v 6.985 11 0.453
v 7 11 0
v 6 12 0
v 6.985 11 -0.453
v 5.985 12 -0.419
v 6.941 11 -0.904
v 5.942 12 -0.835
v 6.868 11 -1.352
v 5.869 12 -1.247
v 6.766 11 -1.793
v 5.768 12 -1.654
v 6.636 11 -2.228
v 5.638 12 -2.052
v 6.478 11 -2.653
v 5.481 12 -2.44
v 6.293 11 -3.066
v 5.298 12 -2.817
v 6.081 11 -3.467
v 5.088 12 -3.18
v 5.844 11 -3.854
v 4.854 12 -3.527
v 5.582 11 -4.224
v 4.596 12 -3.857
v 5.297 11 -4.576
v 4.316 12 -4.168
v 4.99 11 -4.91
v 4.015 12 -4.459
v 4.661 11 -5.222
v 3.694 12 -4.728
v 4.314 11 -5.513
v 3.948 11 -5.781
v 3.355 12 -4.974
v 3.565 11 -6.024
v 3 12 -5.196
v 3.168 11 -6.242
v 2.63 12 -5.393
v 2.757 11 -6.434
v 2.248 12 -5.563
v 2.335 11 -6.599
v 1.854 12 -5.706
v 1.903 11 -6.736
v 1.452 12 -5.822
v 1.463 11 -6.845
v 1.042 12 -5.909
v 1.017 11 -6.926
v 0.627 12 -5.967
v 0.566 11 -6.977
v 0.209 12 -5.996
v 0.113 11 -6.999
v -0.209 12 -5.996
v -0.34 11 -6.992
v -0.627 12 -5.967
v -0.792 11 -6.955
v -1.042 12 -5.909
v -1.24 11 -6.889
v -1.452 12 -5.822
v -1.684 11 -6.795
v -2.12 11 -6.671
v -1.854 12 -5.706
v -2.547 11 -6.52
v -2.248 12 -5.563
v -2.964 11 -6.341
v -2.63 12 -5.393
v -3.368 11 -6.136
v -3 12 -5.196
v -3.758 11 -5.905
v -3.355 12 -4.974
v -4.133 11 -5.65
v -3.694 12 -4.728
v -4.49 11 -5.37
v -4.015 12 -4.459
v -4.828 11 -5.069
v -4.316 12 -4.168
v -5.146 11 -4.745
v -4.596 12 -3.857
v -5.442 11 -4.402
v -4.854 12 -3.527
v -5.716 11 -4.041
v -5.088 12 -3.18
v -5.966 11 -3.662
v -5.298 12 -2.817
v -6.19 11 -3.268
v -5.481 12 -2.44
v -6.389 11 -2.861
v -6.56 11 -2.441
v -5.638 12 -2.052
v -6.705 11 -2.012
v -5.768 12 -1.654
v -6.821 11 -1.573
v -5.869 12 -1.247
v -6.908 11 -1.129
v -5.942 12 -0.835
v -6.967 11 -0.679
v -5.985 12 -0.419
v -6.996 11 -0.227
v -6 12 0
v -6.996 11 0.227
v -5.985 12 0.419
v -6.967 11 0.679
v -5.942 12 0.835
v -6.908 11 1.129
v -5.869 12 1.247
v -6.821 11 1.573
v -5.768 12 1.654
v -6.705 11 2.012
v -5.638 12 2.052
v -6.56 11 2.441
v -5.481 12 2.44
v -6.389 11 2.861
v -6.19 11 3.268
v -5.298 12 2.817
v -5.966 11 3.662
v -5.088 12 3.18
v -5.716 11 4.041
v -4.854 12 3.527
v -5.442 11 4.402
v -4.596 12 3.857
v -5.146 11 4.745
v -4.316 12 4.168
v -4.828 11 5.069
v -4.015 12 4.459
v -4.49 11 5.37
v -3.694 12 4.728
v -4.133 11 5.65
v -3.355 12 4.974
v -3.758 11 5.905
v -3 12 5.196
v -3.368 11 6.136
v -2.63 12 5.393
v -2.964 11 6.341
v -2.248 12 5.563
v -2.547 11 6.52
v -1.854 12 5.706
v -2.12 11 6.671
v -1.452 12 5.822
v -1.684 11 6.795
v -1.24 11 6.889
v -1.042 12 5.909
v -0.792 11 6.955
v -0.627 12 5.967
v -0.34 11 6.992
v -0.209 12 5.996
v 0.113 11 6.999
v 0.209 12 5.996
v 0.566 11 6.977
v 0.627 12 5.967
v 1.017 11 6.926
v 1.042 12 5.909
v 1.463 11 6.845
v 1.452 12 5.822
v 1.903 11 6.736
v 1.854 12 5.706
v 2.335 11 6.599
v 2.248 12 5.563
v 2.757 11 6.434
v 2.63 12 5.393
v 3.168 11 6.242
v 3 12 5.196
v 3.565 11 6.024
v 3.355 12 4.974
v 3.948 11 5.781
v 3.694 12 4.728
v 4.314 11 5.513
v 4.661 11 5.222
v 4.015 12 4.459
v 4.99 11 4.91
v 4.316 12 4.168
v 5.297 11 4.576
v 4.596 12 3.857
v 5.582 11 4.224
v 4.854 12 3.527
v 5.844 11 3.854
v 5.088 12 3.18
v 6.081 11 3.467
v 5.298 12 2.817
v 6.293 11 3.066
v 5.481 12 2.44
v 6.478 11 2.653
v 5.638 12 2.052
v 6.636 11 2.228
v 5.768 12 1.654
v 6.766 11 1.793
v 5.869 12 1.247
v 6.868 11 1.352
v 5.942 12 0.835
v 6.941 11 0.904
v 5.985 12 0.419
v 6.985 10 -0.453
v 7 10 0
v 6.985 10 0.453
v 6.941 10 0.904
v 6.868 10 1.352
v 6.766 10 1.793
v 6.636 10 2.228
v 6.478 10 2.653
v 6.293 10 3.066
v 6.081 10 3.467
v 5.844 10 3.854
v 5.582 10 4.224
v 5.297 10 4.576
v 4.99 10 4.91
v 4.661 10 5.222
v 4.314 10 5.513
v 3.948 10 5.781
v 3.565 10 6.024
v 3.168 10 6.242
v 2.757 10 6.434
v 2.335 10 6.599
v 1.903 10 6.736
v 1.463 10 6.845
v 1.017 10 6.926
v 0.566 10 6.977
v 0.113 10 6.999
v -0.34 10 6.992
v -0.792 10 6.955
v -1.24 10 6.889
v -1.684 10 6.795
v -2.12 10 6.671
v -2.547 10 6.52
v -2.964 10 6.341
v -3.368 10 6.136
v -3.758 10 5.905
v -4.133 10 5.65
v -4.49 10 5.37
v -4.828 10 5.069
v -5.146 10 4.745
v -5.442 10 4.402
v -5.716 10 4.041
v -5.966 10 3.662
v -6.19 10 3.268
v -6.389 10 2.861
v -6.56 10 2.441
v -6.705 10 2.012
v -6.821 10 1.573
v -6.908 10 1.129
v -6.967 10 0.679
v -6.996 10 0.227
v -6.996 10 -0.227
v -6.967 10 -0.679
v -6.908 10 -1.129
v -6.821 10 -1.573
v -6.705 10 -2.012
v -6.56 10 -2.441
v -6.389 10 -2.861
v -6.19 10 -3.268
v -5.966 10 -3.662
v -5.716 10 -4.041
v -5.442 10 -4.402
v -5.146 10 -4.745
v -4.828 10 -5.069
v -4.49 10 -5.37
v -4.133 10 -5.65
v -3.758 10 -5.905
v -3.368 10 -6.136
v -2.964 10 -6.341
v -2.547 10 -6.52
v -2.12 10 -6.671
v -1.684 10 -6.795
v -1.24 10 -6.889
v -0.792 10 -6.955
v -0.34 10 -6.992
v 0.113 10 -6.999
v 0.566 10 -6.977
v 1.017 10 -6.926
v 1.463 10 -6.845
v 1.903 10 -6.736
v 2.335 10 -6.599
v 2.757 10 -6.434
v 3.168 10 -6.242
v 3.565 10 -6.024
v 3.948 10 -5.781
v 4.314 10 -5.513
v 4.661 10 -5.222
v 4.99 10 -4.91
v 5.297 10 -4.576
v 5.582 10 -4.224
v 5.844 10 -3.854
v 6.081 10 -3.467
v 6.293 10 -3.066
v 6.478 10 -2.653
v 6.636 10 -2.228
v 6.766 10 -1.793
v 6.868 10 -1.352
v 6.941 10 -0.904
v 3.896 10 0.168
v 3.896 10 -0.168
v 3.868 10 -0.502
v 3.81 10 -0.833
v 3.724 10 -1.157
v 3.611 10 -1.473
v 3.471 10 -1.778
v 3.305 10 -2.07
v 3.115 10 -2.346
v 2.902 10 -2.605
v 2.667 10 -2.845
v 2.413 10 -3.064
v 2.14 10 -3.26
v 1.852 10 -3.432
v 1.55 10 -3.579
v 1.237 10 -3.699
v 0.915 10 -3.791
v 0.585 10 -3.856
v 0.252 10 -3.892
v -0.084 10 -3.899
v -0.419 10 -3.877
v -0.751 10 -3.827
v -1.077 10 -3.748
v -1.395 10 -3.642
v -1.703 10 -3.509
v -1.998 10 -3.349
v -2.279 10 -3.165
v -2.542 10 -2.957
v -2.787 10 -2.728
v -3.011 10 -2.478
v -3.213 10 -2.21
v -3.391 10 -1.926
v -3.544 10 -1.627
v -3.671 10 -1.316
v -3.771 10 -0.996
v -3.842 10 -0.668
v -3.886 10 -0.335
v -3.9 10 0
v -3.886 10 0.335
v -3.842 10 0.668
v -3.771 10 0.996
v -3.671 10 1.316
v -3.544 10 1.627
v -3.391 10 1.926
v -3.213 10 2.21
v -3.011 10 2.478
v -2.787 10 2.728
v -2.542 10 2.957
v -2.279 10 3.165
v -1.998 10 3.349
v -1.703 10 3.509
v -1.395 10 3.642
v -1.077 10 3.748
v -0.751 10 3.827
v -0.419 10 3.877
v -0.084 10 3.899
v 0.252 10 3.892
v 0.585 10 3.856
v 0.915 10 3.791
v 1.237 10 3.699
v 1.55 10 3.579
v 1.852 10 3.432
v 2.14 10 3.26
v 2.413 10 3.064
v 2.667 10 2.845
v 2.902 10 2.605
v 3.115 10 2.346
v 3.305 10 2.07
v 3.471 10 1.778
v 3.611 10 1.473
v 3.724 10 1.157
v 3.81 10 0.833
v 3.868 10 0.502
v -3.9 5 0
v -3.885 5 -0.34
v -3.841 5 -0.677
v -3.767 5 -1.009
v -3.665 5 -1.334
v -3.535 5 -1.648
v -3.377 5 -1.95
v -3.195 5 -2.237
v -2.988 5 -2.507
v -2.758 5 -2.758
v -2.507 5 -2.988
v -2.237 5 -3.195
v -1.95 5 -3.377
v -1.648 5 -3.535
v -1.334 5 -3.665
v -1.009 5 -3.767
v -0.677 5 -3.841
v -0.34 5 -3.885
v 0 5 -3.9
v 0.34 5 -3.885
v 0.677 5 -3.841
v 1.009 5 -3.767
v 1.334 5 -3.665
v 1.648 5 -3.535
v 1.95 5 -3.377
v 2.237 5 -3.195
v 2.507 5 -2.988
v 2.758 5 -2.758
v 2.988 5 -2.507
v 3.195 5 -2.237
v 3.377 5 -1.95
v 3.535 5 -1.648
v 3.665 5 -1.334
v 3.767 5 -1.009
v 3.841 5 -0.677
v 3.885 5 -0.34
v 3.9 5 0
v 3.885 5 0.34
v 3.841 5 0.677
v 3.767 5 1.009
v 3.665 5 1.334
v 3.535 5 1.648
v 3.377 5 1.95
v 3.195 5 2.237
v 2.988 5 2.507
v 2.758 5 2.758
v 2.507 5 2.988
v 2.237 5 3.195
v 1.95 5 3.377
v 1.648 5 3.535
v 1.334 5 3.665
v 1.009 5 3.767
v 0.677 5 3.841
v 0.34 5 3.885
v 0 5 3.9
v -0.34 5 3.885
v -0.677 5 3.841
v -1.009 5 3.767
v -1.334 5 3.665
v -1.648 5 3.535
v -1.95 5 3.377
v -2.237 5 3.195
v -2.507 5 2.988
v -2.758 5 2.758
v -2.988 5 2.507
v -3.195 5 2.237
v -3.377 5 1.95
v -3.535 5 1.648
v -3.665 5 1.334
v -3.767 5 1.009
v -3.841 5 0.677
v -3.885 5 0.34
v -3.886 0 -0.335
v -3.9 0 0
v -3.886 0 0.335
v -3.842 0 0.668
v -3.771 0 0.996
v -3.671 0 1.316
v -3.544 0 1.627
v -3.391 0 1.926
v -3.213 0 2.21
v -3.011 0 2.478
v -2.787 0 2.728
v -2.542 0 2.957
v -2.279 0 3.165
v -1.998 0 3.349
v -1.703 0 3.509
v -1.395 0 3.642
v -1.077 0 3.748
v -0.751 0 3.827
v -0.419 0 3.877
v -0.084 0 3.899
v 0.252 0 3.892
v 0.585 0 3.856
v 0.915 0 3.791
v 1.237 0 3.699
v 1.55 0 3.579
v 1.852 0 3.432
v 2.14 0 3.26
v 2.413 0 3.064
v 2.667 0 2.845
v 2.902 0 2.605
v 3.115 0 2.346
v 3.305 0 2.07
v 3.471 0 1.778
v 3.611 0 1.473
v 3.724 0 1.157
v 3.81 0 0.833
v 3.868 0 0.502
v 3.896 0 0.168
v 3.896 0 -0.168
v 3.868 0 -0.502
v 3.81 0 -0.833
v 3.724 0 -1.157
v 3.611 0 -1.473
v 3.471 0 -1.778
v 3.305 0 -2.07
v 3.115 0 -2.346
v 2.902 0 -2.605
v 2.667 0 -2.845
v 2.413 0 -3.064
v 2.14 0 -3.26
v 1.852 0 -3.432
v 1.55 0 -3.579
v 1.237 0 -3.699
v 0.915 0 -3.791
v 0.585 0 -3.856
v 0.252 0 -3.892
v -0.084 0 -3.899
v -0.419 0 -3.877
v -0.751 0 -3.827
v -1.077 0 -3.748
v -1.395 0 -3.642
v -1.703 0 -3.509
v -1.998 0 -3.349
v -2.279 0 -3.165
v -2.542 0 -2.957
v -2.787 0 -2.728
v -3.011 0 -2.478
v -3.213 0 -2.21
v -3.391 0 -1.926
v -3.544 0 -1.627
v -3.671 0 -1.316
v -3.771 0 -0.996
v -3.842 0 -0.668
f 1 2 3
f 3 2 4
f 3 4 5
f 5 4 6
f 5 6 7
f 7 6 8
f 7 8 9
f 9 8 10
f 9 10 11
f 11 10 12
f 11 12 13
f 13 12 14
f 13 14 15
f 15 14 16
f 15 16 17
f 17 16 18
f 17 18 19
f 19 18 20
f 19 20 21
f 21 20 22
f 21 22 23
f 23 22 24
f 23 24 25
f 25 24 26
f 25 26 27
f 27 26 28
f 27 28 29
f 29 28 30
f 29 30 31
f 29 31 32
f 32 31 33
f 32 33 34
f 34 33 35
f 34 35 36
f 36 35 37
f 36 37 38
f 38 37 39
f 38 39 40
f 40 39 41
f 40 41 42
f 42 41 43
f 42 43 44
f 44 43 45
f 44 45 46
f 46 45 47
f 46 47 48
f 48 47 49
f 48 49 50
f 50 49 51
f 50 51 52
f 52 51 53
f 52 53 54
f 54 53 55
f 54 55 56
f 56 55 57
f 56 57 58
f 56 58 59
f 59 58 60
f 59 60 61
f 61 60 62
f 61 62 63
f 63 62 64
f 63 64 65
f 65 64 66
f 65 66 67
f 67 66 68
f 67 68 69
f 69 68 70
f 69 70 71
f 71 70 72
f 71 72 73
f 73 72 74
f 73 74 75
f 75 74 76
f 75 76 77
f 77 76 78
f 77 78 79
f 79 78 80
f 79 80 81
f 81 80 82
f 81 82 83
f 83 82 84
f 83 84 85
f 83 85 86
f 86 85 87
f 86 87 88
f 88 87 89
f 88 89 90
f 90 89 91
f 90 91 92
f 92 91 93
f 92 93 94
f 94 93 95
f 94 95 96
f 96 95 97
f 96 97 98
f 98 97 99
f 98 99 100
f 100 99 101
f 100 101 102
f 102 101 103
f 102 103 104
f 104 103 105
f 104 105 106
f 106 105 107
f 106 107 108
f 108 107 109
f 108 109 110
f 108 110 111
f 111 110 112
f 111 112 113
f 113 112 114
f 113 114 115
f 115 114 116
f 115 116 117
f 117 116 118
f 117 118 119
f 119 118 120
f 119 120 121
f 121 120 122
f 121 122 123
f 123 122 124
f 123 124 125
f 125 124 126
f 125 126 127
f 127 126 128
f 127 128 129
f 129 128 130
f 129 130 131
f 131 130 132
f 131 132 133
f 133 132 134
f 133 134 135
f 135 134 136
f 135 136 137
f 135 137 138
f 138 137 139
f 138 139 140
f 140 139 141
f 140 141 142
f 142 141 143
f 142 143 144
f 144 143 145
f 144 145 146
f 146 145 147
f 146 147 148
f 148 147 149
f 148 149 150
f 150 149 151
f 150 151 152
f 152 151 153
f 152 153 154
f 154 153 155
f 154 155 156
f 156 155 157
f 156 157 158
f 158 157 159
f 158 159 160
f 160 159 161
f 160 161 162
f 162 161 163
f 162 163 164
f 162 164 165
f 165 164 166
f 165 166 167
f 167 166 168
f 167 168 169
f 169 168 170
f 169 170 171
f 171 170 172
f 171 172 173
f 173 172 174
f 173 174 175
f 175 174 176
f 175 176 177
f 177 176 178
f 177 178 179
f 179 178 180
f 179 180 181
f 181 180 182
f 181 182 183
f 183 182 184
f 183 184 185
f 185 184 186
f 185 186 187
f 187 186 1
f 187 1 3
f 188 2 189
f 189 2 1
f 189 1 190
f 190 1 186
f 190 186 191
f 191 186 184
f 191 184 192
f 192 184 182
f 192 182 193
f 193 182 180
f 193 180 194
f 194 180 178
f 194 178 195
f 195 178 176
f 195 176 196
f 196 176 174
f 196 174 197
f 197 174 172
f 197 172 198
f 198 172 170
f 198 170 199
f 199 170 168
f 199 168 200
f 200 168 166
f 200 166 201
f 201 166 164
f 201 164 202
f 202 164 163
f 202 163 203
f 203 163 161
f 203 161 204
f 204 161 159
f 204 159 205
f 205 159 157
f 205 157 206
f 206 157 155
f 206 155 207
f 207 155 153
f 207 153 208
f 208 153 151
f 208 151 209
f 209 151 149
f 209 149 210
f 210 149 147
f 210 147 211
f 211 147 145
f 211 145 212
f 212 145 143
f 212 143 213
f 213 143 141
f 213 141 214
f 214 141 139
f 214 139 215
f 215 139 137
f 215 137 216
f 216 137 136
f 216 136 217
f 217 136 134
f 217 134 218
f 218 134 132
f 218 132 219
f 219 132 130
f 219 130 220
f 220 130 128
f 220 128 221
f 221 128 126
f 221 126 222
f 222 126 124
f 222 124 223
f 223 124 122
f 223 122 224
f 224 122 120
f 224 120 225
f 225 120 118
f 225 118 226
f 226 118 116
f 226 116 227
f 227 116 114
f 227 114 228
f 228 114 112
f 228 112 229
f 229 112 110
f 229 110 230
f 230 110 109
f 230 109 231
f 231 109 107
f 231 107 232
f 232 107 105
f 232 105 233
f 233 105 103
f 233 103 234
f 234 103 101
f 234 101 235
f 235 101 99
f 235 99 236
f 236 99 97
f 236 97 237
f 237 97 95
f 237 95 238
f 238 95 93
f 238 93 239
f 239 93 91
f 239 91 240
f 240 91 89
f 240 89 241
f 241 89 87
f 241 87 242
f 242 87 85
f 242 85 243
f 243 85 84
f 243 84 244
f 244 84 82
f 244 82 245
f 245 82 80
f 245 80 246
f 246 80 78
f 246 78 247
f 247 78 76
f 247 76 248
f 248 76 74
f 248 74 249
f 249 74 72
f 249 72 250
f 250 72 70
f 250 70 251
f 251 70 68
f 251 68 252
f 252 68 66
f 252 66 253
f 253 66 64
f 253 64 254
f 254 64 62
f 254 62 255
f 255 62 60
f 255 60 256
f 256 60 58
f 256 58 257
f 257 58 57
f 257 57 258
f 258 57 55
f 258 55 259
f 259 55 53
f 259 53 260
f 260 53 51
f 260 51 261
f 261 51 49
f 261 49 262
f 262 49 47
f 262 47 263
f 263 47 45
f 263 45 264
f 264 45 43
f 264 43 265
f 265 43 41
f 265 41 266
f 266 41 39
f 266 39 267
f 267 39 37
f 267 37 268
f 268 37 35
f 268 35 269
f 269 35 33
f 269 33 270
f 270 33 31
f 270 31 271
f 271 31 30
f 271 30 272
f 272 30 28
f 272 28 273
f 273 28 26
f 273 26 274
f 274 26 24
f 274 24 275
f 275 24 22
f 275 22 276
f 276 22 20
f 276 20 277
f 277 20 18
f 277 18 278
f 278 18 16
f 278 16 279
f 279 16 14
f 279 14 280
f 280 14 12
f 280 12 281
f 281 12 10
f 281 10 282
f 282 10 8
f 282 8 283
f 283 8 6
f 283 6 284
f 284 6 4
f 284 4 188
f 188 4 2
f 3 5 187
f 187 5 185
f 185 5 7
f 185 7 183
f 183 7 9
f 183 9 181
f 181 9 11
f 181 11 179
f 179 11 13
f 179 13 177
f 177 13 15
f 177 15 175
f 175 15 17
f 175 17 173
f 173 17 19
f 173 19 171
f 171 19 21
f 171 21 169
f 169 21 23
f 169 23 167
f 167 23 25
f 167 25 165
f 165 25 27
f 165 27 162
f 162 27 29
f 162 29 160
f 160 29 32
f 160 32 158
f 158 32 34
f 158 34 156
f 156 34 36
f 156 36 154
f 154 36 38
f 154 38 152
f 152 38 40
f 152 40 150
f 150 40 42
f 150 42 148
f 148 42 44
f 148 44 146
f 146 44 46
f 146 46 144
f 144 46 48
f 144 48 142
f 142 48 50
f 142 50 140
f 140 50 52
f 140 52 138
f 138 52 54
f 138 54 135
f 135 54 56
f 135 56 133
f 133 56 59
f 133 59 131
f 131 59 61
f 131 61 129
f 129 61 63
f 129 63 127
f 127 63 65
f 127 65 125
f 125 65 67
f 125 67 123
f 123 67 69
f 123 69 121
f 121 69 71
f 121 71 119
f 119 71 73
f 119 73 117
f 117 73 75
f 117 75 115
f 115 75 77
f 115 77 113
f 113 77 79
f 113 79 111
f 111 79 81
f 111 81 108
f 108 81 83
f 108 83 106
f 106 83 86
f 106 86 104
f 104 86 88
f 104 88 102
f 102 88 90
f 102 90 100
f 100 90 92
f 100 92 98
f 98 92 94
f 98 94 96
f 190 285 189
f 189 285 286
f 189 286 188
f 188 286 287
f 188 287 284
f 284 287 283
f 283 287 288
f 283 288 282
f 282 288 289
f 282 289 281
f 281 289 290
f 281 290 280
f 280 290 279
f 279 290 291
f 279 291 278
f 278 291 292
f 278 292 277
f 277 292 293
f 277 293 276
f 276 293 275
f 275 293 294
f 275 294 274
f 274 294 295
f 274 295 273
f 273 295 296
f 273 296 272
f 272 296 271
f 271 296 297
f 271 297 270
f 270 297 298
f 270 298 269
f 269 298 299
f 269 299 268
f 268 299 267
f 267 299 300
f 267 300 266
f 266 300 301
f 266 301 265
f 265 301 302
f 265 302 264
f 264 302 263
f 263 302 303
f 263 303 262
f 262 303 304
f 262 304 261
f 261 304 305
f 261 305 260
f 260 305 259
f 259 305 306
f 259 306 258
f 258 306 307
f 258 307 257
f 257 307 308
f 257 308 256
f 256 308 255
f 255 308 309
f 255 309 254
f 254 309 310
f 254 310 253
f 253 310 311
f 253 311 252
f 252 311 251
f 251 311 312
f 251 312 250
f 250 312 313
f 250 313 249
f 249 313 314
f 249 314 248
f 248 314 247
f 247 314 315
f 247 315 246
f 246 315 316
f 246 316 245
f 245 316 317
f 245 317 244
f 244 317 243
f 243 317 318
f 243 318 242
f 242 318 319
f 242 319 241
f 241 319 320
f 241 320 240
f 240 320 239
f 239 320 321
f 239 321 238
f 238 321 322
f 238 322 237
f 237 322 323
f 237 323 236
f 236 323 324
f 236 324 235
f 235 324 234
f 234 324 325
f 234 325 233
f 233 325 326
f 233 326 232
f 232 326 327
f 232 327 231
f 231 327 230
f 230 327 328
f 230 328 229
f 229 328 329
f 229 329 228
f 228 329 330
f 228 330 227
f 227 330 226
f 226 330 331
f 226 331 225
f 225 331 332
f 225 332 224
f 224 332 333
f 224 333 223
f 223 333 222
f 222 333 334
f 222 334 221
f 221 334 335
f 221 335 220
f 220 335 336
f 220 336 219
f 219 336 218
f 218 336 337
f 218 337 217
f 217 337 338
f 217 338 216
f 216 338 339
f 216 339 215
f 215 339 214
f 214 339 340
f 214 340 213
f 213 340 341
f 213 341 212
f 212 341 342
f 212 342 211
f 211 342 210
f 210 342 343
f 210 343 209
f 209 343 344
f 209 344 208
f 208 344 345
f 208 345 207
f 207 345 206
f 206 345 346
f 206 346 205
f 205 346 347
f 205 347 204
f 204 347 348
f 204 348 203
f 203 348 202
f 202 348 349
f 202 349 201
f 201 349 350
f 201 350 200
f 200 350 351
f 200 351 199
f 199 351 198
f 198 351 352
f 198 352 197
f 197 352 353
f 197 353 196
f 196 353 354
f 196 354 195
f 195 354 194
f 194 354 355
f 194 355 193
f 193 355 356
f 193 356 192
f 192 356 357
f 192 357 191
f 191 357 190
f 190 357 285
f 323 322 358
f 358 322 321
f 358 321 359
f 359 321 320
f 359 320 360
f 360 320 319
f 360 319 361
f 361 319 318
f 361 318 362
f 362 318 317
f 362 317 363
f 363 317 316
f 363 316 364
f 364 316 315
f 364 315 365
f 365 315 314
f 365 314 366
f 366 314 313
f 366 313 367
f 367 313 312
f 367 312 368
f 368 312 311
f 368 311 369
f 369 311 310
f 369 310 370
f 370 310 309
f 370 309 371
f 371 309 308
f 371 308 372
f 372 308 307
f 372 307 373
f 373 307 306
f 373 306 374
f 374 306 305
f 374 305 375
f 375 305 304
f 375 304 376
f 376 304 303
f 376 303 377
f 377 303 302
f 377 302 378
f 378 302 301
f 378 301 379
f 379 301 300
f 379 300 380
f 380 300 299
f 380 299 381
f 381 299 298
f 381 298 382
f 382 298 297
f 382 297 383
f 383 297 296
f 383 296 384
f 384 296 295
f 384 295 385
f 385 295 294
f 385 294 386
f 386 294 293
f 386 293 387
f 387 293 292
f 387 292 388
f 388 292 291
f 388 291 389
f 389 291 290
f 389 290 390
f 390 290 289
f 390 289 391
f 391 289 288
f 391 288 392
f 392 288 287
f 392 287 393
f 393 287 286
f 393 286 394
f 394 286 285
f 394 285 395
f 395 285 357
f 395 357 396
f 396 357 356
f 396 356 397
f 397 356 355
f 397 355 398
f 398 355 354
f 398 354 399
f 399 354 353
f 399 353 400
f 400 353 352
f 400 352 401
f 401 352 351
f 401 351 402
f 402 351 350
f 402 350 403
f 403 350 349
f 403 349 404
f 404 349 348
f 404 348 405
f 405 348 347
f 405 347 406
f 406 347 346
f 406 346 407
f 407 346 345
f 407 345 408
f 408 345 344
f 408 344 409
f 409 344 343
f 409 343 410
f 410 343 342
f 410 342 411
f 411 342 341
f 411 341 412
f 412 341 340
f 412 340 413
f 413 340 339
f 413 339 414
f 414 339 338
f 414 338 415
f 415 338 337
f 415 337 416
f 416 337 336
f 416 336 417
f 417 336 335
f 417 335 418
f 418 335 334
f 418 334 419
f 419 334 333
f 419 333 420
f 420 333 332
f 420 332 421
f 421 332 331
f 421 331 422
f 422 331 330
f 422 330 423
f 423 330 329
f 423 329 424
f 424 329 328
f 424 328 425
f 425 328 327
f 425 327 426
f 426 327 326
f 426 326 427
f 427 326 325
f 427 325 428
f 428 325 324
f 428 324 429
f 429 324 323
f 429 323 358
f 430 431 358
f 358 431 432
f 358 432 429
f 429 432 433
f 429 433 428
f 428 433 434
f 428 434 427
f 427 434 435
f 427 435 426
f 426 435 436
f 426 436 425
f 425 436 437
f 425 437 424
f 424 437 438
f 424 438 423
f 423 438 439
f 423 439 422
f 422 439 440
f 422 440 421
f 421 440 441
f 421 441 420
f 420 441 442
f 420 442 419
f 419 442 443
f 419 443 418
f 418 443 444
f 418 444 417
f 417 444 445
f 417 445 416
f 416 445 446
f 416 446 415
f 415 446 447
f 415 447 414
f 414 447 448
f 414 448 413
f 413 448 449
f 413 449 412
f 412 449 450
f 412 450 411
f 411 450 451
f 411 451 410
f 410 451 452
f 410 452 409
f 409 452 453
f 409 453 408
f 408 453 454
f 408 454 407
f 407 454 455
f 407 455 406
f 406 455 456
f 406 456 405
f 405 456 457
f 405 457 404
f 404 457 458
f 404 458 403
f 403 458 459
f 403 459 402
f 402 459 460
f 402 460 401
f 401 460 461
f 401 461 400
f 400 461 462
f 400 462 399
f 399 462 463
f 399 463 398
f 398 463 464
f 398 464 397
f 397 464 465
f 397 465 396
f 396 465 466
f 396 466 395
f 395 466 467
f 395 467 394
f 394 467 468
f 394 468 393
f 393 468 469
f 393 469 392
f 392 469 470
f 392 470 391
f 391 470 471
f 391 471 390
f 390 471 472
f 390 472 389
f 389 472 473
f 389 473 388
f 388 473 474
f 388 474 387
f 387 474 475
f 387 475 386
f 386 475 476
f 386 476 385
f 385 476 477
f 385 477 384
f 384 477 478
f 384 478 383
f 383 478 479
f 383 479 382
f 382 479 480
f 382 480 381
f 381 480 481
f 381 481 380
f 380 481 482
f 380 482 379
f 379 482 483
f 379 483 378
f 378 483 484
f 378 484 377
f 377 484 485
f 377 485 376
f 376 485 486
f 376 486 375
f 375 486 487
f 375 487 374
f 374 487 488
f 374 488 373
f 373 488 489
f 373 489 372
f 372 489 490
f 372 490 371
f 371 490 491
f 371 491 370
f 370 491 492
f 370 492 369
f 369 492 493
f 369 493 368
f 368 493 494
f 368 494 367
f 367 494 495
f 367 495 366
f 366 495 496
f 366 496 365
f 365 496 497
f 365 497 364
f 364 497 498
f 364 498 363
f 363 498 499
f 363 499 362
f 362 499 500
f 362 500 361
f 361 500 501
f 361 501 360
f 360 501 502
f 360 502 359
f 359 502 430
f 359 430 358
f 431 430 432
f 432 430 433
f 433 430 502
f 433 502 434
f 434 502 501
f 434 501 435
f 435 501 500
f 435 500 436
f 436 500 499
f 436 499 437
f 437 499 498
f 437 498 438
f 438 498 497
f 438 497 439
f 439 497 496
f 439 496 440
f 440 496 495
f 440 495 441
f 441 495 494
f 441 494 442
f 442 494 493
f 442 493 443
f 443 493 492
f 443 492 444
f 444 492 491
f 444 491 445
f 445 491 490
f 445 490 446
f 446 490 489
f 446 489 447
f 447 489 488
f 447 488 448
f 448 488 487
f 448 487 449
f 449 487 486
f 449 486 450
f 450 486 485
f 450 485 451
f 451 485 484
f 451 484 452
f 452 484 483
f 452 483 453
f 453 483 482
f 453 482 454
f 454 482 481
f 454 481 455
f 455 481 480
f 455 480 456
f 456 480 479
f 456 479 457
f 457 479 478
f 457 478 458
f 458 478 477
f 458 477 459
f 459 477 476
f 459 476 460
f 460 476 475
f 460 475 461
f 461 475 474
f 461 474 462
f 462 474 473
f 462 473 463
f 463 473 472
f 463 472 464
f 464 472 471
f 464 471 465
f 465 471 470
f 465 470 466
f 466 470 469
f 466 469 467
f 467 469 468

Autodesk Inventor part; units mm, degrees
ref_plane "YZ Plane" through (0, 0, 0) normal (1, 0, 0) x (0, 1, 0)
ref_plane "XZ Plane" through (0, 0, 0) normal (0, 1, 0) x (-1, 0, 0)
ref_plane "XY Plane" through (0, 0, 0) normal (0, 0, 1) x (1, 0, 0)
sketch "Sketch1" plane through (0, 0, 0) normal (0, 1, 0) x (-1, 0, 0)
  circle A0 centre (0, 0) radius 3.9
  dimension "d0" = 7.8
extrude "Extrusion1" add sketch "Sketch1" along normal blind 10
sketch "Sketch2" plane through (0, 10, 0) normal (0, 1, 0) x (1, 0, 0)
  circle A0 centre (0, 0) radius 7
  dimension "d3" = 14
extrude "Extrusion2" add sketch "Sketch2" along normal blind 2
chamfer "Chamfer1" distance 1 angle 45 1 edges at (-7, 12, 0)
properties part number "_3DPrint"
